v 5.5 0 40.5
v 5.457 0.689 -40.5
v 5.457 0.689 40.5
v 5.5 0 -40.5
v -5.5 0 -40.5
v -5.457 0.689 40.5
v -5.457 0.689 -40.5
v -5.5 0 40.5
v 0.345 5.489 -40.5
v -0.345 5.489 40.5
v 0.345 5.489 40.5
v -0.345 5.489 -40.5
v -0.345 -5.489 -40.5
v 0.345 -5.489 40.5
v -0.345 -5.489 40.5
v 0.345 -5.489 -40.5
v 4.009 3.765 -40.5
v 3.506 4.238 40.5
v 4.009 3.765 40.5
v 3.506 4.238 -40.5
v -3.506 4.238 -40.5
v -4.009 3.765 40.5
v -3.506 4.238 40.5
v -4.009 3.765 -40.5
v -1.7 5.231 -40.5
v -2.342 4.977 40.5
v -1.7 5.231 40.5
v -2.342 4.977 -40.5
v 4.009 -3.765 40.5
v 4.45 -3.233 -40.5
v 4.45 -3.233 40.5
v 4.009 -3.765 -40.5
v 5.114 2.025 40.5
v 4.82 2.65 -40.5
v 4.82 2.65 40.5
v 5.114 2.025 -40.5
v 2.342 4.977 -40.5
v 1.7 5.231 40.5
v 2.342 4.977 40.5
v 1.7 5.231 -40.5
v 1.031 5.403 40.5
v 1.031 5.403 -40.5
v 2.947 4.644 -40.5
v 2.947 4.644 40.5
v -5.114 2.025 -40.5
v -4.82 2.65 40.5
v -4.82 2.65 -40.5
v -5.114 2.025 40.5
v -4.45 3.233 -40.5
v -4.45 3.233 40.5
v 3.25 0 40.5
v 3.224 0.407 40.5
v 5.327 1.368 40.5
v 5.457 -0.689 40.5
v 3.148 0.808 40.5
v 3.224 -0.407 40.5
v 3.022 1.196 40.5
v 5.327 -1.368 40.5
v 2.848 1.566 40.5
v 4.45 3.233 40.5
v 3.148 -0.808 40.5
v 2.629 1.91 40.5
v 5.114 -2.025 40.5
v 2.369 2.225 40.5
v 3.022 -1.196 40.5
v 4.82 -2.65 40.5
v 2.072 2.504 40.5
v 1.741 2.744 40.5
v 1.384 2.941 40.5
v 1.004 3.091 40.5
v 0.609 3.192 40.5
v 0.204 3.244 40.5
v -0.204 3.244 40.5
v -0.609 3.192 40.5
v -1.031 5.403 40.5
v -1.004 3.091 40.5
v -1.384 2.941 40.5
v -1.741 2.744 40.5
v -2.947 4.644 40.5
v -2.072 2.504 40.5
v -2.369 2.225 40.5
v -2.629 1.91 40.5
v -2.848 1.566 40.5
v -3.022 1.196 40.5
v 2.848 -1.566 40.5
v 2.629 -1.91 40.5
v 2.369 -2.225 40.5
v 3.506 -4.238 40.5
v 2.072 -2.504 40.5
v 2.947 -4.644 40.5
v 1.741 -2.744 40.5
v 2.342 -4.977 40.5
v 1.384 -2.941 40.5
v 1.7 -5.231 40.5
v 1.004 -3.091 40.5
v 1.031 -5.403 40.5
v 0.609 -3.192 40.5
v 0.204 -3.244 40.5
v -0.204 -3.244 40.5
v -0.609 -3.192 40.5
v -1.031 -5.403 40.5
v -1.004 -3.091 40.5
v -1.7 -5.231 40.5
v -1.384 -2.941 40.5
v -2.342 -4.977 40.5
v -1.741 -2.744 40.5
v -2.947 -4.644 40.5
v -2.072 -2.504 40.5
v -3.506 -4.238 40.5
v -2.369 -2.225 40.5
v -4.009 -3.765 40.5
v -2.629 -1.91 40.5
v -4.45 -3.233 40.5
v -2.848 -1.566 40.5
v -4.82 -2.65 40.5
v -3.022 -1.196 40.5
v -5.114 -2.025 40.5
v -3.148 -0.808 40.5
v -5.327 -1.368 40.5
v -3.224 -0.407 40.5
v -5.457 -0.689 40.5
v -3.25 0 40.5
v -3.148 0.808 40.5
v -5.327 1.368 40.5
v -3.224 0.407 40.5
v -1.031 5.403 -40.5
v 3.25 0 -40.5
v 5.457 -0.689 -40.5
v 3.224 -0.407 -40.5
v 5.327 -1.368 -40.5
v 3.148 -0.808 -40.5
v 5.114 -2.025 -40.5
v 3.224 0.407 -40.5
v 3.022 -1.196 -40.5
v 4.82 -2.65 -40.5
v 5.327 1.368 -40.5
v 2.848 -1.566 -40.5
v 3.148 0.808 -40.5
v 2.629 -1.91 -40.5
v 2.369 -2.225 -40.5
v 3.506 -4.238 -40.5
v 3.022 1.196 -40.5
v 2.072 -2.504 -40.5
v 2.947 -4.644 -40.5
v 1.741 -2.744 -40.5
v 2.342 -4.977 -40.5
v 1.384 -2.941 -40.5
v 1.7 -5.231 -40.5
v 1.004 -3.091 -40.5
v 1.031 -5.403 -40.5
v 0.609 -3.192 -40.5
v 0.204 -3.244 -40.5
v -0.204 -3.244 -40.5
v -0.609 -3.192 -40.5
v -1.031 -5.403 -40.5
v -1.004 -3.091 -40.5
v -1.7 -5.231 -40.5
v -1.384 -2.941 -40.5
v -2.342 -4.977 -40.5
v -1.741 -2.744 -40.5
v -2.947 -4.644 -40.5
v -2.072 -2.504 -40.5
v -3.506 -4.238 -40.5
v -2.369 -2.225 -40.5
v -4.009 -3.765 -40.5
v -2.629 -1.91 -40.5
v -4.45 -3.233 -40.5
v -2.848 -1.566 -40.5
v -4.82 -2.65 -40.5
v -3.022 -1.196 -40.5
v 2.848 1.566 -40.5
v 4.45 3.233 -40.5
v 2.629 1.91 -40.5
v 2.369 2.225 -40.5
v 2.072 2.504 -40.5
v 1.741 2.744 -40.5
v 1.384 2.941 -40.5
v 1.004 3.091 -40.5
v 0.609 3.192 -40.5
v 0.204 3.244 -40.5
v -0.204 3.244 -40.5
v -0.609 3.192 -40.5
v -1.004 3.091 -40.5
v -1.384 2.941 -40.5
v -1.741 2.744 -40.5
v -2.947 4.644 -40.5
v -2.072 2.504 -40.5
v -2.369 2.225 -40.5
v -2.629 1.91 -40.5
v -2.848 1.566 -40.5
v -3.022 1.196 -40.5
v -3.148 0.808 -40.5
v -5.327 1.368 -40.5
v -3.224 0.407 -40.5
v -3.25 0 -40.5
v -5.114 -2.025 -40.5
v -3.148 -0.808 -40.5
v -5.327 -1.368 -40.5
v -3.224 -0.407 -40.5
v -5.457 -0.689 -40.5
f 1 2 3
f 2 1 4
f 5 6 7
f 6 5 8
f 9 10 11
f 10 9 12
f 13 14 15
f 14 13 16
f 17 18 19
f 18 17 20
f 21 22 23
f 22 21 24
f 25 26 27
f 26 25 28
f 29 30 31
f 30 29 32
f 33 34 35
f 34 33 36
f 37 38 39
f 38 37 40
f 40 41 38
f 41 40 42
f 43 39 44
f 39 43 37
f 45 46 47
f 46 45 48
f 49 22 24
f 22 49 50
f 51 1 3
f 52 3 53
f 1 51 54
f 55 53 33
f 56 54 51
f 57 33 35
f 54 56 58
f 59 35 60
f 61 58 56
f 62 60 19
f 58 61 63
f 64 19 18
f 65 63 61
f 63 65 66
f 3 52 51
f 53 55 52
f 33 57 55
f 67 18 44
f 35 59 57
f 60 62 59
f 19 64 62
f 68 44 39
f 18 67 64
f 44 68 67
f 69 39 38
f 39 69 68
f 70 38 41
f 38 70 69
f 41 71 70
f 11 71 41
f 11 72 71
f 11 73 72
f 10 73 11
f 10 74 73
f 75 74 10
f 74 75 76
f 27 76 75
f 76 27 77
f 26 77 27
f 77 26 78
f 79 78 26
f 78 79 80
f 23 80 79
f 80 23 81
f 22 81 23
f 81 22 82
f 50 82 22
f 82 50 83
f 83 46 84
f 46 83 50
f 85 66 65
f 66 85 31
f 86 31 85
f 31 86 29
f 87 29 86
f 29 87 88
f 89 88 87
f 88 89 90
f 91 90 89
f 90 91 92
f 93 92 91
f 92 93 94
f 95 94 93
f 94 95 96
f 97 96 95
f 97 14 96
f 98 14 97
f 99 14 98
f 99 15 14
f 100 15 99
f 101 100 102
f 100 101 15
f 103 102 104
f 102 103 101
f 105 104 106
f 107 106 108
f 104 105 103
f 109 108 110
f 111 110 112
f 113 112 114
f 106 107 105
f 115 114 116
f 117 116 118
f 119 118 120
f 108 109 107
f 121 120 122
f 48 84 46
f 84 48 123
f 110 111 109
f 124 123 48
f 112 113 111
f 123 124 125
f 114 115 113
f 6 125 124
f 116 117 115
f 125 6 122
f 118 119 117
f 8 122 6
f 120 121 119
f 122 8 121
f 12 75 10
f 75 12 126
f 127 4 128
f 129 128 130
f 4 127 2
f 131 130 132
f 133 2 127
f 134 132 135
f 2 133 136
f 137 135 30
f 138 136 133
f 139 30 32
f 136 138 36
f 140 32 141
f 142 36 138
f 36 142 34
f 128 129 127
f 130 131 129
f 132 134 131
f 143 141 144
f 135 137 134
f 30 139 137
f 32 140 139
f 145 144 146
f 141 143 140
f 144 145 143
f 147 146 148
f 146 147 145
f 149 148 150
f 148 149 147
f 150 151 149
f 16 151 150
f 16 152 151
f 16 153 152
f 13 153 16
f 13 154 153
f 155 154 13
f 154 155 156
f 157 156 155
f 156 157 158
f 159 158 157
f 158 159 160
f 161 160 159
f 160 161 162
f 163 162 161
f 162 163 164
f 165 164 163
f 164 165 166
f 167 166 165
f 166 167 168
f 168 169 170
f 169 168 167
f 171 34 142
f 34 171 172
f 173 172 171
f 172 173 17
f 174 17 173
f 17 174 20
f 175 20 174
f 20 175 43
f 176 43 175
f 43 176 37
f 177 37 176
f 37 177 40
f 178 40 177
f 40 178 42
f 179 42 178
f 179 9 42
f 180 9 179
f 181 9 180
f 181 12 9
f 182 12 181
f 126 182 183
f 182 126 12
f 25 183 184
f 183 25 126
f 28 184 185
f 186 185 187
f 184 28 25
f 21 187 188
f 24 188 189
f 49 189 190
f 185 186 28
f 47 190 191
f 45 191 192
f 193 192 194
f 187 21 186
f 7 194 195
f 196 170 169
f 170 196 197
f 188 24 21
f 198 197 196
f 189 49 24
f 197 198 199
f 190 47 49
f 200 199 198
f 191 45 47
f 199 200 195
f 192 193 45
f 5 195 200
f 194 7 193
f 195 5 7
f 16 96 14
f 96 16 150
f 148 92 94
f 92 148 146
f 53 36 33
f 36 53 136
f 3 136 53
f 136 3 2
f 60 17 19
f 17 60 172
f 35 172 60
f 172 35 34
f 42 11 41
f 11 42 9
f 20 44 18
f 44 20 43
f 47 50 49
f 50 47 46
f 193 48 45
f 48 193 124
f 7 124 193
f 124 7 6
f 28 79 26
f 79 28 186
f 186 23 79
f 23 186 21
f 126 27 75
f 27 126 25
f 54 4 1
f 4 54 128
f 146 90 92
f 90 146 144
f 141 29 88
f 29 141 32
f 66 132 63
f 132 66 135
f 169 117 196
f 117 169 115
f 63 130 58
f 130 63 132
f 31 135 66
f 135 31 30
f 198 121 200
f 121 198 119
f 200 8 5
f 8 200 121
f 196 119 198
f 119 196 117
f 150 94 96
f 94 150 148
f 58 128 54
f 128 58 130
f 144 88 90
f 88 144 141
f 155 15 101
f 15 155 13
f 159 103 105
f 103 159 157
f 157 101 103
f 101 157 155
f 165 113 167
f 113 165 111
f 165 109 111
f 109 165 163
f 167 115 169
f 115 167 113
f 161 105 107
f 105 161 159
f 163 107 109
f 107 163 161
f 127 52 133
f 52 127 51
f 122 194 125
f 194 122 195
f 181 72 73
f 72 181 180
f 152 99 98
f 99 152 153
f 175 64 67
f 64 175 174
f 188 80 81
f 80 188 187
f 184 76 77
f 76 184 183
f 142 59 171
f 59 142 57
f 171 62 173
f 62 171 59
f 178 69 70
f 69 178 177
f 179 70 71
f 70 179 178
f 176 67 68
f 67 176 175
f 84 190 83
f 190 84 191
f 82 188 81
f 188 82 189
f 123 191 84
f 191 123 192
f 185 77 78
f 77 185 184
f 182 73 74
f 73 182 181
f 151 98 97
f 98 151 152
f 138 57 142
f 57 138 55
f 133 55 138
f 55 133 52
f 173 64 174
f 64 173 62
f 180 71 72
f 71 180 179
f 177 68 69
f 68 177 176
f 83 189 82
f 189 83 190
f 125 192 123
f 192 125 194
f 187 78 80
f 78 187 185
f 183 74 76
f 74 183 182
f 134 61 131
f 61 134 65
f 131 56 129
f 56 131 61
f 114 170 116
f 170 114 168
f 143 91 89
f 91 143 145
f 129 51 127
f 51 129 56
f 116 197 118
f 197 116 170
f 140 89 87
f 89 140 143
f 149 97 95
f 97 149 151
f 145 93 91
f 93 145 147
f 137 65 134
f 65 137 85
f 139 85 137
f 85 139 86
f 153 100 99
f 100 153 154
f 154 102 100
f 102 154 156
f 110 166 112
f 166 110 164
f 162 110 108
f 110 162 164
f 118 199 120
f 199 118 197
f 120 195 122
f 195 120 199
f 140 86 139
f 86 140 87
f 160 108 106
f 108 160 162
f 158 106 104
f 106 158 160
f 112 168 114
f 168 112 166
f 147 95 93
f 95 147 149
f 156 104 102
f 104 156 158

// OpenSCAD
$fn = 50;


difference() {
	union() {
		translate(v = [0, 0, -40.5000000000]) {
			cylinder(h = 81, r = 5.5000000000);
		}
	}
	union() {
		translate(v = [0, 0, -100.0000000000]) {
			cylinder(h = 200, r = 3.2500000000);
		}
	}
}
